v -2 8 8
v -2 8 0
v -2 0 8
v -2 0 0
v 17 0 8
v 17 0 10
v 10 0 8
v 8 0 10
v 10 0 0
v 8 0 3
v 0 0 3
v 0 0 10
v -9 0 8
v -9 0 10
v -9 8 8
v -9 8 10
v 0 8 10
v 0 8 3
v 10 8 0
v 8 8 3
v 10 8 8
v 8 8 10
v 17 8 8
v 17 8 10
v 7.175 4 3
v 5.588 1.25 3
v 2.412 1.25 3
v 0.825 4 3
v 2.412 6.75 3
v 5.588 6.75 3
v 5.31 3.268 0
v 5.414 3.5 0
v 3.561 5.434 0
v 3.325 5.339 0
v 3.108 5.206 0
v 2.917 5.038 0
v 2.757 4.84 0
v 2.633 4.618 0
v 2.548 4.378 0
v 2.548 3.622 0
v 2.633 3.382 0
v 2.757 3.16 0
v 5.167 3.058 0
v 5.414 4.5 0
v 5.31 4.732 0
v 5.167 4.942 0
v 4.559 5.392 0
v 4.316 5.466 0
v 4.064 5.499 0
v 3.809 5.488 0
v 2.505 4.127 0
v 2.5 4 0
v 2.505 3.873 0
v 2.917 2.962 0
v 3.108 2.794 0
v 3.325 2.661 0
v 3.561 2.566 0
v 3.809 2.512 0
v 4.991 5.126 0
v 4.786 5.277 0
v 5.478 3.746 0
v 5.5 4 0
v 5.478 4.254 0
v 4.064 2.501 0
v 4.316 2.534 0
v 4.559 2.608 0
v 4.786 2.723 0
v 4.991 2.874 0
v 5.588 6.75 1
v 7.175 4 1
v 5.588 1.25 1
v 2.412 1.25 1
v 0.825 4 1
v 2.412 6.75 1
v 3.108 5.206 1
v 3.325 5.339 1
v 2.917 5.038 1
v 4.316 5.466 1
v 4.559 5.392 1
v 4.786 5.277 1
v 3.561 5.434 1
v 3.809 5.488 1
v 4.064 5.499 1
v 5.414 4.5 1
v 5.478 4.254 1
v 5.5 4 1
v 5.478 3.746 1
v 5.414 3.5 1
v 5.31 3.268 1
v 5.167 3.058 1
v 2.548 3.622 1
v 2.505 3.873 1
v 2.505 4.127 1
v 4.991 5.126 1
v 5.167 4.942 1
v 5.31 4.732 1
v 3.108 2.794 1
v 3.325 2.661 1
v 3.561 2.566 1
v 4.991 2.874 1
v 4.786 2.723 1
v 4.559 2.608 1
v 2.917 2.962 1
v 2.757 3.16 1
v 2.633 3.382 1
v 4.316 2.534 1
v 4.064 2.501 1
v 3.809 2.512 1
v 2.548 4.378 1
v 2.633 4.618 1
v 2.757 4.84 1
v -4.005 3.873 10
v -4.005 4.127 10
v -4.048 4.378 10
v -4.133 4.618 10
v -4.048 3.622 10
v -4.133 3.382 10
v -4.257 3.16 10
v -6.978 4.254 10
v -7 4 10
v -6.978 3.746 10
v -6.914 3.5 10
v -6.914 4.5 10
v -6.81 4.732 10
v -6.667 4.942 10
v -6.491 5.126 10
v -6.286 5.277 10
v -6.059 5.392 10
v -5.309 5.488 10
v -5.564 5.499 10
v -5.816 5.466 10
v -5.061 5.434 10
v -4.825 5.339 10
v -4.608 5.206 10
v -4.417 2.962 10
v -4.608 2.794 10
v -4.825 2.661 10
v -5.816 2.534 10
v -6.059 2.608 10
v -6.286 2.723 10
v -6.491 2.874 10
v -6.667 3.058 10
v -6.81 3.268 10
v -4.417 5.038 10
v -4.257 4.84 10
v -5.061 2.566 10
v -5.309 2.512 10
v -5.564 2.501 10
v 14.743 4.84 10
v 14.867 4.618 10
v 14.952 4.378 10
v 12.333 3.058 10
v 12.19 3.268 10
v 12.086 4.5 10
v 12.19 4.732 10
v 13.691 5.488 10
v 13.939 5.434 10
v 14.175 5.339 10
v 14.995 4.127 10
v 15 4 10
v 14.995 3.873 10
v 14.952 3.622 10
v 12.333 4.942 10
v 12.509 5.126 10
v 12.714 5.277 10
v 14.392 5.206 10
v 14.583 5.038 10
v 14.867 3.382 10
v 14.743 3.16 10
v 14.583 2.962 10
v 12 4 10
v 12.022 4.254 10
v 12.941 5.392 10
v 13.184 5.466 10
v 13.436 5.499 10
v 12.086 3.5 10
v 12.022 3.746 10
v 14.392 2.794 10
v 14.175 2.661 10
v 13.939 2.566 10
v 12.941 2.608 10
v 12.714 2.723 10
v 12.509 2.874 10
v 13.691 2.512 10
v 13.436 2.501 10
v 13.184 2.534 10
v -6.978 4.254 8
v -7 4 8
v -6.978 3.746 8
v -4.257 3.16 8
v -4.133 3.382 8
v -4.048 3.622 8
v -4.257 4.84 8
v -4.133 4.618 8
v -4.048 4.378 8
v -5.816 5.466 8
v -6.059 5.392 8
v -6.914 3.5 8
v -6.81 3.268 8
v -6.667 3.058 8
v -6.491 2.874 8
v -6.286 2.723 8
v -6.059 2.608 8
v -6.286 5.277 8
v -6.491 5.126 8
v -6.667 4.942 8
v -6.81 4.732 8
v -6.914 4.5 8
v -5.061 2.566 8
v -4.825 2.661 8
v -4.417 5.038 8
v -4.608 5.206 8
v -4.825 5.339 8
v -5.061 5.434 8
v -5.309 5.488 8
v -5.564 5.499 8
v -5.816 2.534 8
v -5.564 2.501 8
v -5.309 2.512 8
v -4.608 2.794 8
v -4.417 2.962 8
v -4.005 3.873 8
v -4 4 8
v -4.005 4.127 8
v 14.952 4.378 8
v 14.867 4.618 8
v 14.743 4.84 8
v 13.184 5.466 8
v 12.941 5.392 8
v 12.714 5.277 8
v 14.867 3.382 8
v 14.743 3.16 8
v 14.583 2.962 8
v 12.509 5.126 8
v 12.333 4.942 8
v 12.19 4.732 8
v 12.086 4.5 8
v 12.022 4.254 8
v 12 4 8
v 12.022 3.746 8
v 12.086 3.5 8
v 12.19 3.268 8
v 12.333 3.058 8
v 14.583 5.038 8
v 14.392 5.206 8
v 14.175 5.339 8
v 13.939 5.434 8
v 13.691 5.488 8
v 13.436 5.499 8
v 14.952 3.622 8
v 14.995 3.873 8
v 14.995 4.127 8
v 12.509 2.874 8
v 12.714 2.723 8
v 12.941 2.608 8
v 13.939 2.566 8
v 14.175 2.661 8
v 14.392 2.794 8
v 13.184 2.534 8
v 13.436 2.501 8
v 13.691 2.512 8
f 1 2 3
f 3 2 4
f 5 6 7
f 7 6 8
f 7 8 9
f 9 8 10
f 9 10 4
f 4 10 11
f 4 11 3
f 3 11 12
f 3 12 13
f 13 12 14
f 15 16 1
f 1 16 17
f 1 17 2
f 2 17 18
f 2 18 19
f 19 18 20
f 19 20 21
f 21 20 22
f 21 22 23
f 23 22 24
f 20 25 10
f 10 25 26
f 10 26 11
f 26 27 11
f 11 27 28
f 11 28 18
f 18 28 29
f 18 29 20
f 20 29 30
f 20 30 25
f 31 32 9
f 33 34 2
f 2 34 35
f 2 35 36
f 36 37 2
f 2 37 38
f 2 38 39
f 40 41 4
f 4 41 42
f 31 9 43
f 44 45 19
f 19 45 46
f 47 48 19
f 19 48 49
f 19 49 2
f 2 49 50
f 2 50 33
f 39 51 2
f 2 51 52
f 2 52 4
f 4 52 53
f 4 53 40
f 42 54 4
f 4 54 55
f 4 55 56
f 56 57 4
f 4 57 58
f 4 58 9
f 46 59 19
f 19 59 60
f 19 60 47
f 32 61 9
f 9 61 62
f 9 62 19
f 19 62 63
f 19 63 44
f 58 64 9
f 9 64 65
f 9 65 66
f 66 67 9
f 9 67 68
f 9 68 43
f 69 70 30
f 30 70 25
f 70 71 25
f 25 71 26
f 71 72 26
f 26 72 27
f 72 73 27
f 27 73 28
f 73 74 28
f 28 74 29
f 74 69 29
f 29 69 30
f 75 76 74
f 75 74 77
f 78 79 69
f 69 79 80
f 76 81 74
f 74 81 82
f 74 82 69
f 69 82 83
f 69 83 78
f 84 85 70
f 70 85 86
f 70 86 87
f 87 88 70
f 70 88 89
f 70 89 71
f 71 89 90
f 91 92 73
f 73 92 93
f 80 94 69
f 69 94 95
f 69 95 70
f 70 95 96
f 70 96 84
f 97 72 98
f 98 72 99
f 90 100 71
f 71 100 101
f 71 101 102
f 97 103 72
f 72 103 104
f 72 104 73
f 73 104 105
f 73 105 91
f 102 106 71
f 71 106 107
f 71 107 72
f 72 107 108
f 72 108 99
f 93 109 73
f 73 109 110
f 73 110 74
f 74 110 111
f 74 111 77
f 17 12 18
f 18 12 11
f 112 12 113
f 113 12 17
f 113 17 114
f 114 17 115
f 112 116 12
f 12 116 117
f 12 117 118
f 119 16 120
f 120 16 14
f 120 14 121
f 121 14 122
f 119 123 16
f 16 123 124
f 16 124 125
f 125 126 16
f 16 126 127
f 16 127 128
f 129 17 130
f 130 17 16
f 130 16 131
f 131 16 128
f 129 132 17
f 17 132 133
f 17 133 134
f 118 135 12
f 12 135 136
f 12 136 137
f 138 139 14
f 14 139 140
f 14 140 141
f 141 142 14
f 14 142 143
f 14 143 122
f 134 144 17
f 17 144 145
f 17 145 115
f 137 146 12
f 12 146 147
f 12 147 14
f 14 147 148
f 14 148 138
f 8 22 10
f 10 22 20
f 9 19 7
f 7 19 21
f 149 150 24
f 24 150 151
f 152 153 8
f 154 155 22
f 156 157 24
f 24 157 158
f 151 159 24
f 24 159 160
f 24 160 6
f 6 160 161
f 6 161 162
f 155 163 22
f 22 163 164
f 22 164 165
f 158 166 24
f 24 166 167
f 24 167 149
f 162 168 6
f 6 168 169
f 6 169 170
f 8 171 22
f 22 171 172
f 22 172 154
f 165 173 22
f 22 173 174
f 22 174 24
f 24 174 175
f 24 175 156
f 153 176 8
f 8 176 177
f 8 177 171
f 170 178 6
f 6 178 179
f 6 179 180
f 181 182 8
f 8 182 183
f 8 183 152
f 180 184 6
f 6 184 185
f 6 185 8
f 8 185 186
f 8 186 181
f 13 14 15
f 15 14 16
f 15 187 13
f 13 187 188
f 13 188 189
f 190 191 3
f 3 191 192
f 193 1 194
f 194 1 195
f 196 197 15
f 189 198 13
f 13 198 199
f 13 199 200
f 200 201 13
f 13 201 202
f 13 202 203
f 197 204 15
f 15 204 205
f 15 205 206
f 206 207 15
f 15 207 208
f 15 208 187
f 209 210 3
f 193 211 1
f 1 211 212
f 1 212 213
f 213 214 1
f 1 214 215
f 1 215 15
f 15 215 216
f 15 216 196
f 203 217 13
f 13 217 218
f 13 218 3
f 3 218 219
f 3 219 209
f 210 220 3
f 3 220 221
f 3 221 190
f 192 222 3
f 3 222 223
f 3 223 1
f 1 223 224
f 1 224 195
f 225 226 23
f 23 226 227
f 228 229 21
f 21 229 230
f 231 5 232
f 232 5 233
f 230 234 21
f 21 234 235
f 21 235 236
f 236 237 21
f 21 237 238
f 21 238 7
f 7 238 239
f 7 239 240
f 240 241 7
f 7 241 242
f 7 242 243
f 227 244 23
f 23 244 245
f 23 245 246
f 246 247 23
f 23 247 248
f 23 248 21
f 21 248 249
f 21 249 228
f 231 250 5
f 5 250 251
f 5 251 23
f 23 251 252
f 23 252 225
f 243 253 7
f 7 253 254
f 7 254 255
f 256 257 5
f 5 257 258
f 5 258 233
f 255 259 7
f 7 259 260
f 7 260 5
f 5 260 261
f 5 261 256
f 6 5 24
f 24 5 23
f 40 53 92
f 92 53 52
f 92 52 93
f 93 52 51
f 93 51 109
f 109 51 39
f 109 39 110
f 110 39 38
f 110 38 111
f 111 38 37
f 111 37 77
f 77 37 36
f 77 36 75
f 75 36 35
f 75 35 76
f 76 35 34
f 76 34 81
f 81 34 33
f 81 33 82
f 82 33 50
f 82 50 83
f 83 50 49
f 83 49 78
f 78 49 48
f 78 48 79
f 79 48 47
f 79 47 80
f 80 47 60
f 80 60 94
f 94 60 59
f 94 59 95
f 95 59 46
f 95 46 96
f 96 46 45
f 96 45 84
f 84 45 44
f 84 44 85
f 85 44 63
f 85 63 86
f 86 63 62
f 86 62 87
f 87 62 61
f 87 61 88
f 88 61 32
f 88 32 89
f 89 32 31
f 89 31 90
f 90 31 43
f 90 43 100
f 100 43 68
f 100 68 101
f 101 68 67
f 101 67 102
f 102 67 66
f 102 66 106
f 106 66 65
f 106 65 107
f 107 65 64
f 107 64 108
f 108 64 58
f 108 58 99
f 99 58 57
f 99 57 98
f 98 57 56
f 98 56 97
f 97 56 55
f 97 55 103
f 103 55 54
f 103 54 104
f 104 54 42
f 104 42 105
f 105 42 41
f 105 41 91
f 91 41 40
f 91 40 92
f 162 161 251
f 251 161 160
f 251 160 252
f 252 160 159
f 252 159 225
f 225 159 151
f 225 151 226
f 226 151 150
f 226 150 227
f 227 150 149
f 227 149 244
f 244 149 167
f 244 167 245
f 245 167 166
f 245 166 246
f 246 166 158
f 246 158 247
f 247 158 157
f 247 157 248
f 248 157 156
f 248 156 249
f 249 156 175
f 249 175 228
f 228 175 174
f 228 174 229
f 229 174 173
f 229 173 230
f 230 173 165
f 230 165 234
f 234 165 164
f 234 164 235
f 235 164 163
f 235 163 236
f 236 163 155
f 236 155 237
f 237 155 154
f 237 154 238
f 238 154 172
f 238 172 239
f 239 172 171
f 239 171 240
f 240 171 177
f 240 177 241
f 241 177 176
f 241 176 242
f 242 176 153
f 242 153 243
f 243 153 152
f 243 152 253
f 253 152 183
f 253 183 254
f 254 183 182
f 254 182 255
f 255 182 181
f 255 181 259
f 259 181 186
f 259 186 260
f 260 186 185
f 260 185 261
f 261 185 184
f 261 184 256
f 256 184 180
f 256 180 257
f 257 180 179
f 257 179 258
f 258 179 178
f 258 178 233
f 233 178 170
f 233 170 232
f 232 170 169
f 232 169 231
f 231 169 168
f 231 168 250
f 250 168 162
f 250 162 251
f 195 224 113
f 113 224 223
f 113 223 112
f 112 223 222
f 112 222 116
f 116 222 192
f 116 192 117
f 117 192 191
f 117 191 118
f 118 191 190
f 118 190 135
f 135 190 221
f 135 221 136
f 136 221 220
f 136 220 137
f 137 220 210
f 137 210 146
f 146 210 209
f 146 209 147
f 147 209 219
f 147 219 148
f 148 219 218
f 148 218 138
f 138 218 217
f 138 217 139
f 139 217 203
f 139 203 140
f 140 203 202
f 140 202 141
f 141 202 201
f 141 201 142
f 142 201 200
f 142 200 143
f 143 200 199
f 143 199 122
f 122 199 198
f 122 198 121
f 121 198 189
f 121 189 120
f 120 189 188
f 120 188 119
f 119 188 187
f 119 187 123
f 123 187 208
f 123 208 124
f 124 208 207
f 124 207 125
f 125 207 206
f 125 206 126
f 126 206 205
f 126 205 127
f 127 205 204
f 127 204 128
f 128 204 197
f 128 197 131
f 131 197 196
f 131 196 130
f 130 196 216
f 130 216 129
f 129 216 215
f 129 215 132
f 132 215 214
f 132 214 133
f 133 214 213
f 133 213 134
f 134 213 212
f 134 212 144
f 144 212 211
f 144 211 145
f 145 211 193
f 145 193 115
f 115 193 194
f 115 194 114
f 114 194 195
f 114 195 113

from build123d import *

# Parameters (mm, degrees)
IZIM1_W                          = 8
IZIM1_H                          = 8
Y_KSEKLIK_EKSTR_ZYON1_DEPTH      = 3
KES_EKSTR_ZYON1_DEPTH            = 2
Y_KSEKLIK_EKSTR_ZYON2_DEPTH      = 7
Y_KSEKLIK_EKSTR_ZYON2_DEPTH_BACK = 3
IZIM3_W                          = 2
IZIM3_H                          = 8
IZIM4_W                          = 7
IZIM4_H                          = 2
Y_KSEKLIK_EKSTR_ZYON3_DEPTH      = 8
IZIM5_R                          = 1.5
KES_EKSTR_ZYON2_DEPTH            = 7
IZIM7_R                          = 1.5
KES_EKSTR_ZYON3_DEPTH            = 7


with BuildPart() as part:
    # Çizim1 → Yükseklik-Ekstrüzyon1 (new body)
    with BuildSketch(Plane.XY):
        with Locations((4, 4)):
            Rectangle(IZIM1_W, IZIM1_H)
    extrude(amount=Y_KSEKLIK_EKSTR_ZYON1_DEPTH)

    # Çizim2 → Kes-Ekstrüzyon1 (cut)
    with BuildSketch(Plane.XY.offset(3)):
        Polygon((5.58771324, 6.75), (2.41228676, 6.75), (0.824573519, 4), (2.41228676, 1.25), (5.58771324, 1.25), (7.175426481, 4), align=None)
    extrude(amount=-KES_EKSTR_ZYON1_DEPTH, mode=Mode.SUBTRACT)

    # Çizim3 → Yükseklik-Ekstrüzyon2 (add, two sides: drawn at the far end of the back side and taken through both)
    with BuildSketch(Plane.XY.offset(3).offset(-Y_KSEKLIK_EKSTR_ZYON2_DEPTH_BACK)):
        with Locations((-1, 4)):
            Rectangle(IZIM3_W, IZIM3_H)
        with Locations((9, 4)):
            Rectangle(IZIM3_W, IZIM3_H)
    extrude(amount=Y_KSEKLIK_EKSTR_ZYON2_DEPTH + Y_KSEKLIK_EKSTR_ZYON2_DEPTH_BACK)

    # Çizim4 → Yükseklik-Ekstrüzyon3 (add)
    with BuildSketch(Plane(origin=(0, 8, 0), x_dir=(1, 0, 0), z_dir=(0, 1, 0))):
        with Locations((-5.5, -9)):
            Rectangle(IZIM4_W, IZIM4_H)
        with Locations((13.5, -9)):
            Rectangle(IZIM4_W, IZIM4_H)
    extrude(amount=-Y_KSEKLIK_EKSTR_ZYON3_DEPTH)

    # Çizim5 → Kes-Ekstrüzyon2 (cut)
    with BuildSketch(Plane.XY.offset(1)):
        with Locations((4, 4)):
            Circle(IZIM5_R)
    extrude(amount=-KES_EKSTR_ZYON2_DEPTH, mode=Mode.SUBTRACT)

    # Çizim7 → Kes-Ekstrüzyon3 (cut)
    with BuildSketch(Plane(origin=(0, 0, 8), x_dir=(-1, 0, 0), z_dir=(0, 0, -1))):
        with Locations((-13.5, 4)):
            Circle(IZIM7_R)
        with Locations((5.5, 4)):
            Circle(IZIM7_R)
    extrude(amount=-KES_EKSTR_ZYON3_DEPTH, mode=Mode.SUBTRACT)


solid = part.part
